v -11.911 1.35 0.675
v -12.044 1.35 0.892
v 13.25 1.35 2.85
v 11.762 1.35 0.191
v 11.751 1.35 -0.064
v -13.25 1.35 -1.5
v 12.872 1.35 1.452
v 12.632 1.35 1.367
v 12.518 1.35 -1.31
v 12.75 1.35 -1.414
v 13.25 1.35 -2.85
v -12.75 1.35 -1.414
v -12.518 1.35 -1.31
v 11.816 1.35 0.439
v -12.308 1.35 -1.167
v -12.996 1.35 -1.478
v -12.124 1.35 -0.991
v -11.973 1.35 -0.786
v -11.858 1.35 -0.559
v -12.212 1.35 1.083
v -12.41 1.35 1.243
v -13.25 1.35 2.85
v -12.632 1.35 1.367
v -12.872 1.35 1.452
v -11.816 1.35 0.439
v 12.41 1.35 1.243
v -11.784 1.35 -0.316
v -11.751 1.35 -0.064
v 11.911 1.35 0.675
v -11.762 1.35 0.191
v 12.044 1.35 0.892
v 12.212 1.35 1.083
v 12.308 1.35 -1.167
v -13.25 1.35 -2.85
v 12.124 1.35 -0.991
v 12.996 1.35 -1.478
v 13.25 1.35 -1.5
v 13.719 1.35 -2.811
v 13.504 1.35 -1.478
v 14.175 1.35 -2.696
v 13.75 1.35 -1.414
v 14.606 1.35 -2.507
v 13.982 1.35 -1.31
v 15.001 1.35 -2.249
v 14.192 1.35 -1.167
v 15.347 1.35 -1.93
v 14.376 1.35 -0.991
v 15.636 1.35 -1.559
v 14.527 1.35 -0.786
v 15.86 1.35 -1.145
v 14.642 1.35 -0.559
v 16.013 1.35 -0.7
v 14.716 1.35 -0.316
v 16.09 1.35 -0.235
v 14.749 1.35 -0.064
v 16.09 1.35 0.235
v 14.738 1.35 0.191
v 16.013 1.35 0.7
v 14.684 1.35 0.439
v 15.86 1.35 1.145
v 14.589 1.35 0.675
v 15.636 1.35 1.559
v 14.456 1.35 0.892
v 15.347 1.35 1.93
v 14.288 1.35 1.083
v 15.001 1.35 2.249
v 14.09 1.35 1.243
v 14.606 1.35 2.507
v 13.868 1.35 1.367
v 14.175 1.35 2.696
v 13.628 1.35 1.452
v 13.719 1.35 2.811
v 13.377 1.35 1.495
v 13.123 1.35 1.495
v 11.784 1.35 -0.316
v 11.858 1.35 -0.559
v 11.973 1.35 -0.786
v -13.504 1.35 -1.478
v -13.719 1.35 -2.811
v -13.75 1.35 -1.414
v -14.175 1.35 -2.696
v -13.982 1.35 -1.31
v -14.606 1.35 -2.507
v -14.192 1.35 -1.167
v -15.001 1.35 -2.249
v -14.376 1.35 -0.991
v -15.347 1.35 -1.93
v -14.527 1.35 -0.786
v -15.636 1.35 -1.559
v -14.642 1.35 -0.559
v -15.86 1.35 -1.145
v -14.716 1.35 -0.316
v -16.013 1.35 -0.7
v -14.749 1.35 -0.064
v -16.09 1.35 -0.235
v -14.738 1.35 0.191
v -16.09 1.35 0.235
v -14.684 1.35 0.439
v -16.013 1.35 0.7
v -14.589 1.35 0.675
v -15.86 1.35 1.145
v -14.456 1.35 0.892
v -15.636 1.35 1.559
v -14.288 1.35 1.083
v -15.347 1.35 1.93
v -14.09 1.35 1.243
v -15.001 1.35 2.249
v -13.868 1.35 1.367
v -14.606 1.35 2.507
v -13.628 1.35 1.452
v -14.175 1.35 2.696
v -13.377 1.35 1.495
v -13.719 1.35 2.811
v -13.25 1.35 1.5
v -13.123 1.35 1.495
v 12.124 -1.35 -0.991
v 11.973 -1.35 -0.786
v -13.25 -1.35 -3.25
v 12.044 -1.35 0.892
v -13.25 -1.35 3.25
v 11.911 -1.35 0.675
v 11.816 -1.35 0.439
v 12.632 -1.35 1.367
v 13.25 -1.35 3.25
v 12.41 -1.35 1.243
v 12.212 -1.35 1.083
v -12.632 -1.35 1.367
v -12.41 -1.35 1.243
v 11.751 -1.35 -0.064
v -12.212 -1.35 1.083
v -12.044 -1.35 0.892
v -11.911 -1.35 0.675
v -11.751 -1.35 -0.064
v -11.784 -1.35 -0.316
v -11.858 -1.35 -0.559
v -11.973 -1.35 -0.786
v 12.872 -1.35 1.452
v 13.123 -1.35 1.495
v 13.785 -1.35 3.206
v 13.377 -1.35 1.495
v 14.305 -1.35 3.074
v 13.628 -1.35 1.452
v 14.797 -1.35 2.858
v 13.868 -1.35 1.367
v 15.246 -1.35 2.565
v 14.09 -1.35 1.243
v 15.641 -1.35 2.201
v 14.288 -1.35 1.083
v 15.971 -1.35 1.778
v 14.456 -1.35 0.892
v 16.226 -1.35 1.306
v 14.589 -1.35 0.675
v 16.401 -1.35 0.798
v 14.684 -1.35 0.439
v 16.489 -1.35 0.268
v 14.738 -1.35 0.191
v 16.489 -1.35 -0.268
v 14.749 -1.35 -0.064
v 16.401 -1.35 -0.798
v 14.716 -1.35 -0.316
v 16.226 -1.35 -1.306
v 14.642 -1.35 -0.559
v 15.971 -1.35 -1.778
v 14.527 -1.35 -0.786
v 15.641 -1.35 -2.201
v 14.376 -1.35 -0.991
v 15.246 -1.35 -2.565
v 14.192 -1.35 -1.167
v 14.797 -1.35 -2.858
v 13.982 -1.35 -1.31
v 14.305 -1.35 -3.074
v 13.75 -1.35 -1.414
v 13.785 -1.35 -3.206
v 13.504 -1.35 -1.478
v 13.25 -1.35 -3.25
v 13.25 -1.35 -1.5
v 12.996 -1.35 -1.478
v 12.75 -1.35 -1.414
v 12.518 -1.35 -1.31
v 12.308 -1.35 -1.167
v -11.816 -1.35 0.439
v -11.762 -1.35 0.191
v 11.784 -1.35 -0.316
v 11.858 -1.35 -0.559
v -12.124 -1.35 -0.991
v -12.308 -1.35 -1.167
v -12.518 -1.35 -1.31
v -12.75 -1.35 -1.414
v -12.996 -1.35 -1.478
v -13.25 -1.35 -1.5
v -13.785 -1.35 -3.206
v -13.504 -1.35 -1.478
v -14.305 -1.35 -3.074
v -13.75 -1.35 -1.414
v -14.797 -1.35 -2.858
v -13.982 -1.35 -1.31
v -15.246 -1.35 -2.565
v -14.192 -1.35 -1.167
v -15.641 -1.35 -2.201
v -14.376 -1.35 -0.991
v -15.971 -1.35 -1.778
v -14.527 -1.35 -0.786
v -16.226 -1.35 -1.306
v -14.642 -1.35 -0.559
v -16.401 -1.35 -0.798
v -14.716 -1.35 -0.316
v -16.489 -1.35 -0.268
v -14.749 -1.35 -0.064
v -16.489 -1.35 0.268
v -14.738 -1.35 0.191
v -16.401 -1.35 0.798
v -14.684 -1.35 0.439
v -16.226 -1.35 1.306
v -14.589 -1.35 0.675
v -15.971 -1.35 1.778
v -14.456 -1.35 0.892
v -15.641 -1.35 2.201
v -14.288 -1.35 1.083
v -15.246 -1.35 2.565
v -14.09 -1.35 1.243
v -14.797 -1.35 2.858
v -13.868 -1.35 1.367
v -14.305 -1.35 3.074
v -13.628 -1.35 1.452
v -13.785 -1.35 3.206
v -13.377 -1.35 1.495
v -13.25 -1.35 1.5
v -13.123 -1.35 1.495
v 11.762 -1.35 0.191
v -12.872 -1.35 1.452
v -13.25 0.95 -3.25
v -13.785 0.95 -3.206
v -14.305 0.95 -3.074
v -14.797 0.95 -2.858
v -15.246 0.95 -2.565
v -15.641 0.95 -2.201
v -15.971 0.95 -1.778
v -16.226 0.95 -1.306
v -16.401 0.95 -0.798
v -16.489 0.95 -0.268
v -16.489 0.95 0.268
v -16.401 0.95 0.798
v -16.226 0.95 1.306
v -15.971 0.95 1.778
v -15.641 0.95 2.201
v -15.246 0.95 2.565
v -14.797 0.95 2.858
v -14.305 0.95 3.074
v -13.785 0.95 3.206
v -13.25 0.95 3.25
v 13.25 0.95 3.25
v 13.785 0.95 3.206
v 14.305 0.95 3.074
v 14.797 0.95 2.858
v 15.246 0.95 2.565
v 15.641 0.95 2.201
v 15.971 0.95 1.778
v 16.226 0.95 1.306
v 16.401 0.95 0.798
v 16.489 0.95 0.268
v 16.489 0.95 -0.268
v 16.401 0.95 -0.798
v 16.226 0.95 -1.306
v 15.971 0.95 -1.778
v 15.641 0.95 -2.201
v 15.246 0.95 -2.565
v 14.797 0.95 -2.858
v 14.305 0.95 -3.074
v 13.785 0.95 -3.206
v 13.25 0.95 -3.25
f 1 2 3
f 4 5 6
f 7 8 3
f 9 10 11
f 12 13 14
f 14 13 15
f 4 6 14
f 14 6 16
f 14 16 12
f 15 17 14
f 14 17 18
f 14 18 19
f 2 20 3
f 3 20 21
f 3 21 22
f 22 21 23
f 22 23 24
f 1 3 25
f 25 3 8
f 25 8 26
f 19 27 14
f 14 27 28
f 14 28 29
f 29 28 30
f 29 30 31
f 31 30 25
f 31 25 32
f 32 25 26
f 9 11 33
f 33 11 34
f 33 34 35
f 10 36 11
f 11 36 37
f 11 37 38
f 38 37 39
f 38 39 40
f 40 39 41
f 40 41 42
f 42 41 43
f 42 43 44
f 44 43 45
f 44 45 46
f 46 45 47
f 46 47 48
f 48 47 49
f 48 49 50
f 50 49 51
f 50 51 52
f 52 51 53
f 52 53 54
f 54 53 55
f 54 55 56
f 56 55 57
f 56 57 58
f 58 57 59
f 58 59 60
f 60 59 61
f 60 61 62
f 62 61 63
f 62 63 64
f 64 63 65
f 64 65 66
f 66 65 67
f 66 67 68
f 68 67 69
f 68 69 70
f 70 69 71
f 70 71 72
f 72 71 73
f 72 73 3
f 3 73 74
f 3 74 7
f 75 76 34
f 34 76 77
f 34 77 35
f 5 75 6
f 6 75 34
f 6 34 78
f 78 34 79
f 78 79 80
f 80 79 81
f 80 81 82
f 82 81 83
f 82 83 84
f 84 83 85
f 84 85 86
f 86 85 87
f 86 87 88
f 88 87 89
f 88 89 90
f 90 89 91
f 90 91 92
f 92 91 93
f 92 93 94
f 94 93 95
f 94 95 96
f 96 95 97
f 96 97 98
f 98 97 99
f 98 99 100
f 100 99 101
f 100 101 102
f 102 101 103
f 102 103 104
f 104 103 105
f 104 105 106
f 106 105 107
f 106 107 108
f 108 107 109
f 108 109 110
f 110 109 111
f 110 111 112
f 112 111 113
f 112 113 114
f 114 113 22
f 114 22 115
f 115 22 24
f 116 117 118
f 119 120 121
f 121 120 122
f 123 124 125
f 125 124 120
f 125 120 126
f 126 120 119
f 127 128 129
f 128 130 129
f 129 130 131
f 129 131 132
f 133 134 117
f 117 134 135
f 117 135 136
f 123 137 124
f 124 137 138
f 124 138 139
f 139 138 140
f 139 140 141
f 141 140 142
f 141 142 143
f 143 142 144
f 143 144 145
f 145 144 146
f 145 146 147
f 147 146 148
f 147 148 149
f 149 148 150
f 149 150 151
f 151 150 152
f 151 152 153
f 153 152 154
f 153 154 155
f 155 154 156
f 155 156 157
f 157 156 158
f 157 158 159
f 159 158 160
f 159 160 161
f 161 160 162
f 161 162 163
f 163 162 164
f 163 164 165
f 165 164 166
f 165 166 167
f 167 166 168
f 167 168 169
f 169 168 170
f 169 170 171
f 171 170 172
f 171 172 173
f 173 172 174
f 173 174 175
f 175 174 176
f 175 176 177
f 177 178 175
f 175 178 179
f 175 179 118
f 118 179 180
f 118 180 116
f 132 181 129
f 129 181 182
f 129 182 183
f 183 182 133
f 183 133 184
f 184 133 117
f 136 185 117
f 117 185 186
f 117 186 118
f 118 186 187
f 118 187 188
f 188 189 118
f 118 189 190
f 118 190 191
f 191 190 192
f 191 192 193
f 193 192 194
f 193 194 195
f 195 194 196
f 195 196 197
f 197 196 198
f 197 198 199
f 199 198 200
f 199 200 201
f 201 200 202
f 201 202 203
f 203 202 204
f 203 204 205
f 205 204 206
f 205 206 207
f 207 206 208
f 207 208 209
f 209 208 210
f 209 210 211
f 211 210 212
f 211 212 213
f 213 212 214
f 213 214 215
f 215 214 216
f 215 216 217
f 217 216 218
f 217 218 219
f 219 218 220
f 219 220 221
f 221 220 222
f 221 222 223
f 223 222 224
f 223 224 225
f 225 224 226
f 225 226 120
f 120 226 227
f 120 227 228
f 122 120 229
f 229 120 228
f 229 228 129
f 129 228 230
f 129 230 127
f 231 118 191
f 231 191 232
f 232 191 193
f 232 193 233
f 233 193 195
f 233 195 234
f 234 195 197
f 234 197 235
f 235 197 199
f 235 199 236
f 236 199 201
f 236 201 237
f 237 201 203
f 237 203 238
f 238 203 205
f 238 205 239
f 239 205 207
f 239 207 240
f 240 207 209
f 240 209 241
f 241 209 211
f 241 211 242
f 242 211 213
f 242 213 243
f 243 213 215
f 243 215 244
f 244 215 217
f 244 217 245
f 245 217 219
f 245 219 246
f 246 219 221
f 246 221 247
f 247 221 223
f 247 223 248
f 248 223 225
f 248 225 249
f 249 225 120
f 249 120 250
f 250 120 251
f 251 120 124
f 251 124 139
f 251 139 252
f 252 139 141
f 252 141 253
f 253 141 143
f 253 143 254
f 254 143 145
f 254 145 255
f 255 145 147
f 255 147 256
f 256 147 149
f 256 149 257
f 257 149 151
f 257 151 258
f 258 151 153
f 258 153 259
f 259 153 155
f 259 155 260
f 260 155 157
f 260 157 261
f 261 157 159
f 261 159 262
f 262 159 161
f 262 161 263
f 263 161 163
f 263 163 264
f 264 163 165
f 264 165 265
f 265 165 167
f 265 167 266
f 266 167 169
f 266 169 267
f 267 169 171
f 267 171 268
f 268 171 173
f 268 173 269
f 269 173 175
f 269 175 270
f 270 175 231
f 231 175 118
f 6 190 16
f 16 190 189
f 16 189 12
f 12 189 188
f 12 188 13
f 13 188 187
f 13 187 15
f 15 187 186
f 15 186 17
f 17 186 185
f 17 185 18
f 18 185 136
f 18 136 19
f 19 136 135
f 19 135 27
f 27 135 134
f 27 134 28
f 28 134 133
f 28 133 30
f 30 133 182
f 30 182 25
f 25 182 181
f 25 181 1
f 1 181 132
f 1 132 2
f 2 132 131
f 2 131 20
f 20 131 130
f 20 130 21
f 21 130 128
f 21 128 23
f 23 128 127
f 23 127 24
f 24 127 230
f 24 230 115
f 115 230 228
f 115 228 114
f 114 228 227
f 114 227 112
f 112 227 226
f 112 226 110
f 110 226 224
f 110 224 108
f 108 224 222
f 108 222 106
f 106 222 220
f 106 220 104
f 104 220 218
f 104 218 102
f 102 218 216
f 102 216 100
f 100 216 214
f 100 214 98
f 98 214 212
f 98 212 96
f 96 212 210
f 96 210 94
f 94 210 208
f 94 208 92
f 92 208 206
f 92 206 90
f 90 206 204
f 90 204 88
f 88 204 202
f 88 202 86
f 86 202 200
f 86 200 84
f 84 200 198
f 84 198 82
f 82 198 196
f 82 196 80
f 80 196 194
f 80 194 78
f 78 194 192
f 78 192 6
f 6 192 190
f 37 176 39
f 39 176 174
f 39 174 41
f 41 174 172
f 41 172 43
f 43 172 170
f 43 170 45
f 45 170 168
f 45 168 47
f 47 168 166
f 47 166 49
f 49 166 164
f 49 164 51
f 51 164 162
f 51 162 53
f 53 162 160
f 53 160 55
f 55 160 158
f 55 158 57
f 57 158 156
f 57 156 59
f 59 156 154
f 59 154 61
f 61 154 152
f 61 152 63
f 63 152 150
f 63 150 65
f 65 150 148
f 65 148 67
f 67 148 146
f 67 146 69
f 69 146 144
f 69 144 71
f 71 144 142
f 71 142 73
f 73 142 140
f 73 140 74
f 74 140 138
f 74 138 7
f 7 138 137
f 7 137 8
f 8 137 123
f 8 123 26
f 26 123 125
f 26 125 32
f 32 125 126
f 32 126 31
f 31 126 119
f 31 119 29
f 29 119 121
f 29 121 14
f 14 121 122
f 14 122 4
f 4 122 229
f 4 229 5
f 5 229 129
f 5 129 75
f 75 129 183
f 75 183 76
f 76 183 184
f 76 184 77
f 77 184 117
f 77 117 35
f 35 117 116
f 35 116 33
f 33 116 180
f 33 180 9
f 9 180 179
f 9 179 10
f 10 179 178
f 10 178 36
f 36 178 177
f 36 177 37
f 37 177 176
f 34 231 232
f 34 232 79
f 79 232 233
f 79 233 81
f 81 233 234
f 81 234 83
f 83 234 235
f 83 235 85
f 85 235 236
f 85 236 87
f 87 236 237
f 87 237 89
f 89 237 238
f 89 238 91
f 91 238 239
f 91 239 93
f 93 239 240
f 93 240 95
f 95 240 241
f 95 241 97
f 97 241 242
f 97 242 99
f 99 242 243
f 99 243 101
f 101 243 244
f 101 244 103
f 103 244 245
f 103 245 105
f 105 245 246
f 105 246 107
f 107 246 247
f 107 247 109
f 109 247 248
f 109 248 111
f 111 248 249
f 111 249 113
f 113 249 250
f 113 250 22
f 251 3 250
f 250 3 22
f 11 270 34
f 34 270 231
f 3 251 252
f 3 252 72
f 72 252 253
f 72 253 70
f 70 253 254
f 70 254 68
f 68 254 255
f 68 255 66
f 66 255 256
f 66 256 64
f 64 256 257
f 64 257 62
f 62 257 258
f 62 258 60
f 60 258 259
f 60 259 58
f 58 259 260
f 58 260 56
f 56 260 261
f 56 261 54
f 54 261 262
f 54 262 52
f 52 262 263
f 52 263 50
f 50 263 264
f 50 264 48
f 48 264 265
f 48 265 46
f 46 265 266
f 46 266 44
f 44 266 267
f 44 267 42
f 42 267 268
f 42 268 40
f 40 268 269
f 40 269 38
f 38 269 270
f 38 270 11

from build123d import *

# Parameters (mm, degrees)
SKETCH1_R           = 1.5
BOSS_EXTRUDE1_DEPTH = 1.35
CHAMFER1_SIZE       = 0.4


with BuildPart() as part:
    # Sketch1 → Boss-Extrude1 (new body, symmetric)
    with BuildSketch(Plane(origin=(0, 0, 0), x_dir=(1, 0, 0), z_dir=(0, 1, 0))):
        with BuildLine():
            Line((-13.25, 3.25), (13.25, 3.25))
            ThreePointArc((13.25, 3.25), (16.5, 0), (13.25, -3.25))
            Line((13.25, -3.25), (-13.25, -3.25))
            ThreePointArc((-13.25, -3.25), (-16.5, 0), (-13.25, 3.25))
        make_face()
        with Locations((-13.25, 0)):
            Circle(SKETCH1_R, mode=Mode.SUBTRACT)
        with Locations((13.25, 0)):
            Circle(SKETCH1_R, mode=Mode.SUBTRACT)
    extrude(amount=BOSS_EXTRUDE1_DEPTH, both=True)

    # Chamfer1
    chamfer1_edges = [part.edges().sort_by_distance(p)[0] for p in [
        (16.5, 1.35, 0),
        (0, 1.35, -3.25),
        (-16.5, 1.35, 0),
        (0, 1.35, 3.25),
    ]]
    chamfer(chamfer1_edges, length=CHAMFER1_SIZE)


solid = part.part
